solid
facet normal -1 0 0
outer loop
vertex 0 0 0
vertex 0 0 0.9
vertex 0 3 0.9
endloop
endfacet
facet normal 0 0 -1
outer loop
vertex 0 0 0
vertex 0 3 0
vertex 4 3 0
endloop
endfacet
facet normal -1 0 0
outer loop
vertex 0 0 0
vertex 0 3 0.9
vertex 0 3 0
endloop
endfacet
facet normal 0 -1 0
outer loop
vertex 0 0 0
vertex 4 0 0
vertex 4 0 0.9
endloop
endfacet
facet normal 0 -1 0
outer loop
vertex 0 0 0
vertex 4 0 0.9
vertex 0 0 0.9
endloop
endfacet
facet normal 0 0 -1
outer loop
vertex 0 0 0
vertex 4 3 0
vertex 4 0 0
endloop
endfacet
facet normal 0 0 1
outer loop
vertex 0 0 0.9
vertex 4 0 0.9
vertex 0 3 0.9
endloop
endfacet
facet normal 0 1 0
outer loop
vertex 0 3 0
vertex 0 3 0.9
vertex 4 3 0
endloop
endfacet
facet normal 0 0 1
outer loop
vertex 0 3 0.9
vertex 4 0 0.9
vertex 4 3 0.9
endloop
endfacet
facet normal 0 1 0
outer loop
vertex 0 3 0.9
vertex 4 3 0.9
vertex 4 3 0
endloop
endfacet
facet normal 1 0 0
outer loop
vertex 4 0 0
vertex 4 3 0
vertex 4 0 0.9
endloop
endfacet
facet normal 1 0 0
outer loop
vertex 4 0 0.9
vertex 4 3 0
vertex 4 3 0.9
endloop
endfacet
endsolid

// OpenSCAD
/* Warning, this is a very basic generator with a lot of approximation 
input data : [VQFN, NQA, 4x3x0.9mm, 20, , B, C04-01106B]
generated by com.zoubworld.electronics.cad.model3d.Basic
Date : Sun Feb 15 10:50:49 CET 2026
*/

//body
color("black")
translate([0,0,0])
cube([4.0,3.0,0.9], center=false);
